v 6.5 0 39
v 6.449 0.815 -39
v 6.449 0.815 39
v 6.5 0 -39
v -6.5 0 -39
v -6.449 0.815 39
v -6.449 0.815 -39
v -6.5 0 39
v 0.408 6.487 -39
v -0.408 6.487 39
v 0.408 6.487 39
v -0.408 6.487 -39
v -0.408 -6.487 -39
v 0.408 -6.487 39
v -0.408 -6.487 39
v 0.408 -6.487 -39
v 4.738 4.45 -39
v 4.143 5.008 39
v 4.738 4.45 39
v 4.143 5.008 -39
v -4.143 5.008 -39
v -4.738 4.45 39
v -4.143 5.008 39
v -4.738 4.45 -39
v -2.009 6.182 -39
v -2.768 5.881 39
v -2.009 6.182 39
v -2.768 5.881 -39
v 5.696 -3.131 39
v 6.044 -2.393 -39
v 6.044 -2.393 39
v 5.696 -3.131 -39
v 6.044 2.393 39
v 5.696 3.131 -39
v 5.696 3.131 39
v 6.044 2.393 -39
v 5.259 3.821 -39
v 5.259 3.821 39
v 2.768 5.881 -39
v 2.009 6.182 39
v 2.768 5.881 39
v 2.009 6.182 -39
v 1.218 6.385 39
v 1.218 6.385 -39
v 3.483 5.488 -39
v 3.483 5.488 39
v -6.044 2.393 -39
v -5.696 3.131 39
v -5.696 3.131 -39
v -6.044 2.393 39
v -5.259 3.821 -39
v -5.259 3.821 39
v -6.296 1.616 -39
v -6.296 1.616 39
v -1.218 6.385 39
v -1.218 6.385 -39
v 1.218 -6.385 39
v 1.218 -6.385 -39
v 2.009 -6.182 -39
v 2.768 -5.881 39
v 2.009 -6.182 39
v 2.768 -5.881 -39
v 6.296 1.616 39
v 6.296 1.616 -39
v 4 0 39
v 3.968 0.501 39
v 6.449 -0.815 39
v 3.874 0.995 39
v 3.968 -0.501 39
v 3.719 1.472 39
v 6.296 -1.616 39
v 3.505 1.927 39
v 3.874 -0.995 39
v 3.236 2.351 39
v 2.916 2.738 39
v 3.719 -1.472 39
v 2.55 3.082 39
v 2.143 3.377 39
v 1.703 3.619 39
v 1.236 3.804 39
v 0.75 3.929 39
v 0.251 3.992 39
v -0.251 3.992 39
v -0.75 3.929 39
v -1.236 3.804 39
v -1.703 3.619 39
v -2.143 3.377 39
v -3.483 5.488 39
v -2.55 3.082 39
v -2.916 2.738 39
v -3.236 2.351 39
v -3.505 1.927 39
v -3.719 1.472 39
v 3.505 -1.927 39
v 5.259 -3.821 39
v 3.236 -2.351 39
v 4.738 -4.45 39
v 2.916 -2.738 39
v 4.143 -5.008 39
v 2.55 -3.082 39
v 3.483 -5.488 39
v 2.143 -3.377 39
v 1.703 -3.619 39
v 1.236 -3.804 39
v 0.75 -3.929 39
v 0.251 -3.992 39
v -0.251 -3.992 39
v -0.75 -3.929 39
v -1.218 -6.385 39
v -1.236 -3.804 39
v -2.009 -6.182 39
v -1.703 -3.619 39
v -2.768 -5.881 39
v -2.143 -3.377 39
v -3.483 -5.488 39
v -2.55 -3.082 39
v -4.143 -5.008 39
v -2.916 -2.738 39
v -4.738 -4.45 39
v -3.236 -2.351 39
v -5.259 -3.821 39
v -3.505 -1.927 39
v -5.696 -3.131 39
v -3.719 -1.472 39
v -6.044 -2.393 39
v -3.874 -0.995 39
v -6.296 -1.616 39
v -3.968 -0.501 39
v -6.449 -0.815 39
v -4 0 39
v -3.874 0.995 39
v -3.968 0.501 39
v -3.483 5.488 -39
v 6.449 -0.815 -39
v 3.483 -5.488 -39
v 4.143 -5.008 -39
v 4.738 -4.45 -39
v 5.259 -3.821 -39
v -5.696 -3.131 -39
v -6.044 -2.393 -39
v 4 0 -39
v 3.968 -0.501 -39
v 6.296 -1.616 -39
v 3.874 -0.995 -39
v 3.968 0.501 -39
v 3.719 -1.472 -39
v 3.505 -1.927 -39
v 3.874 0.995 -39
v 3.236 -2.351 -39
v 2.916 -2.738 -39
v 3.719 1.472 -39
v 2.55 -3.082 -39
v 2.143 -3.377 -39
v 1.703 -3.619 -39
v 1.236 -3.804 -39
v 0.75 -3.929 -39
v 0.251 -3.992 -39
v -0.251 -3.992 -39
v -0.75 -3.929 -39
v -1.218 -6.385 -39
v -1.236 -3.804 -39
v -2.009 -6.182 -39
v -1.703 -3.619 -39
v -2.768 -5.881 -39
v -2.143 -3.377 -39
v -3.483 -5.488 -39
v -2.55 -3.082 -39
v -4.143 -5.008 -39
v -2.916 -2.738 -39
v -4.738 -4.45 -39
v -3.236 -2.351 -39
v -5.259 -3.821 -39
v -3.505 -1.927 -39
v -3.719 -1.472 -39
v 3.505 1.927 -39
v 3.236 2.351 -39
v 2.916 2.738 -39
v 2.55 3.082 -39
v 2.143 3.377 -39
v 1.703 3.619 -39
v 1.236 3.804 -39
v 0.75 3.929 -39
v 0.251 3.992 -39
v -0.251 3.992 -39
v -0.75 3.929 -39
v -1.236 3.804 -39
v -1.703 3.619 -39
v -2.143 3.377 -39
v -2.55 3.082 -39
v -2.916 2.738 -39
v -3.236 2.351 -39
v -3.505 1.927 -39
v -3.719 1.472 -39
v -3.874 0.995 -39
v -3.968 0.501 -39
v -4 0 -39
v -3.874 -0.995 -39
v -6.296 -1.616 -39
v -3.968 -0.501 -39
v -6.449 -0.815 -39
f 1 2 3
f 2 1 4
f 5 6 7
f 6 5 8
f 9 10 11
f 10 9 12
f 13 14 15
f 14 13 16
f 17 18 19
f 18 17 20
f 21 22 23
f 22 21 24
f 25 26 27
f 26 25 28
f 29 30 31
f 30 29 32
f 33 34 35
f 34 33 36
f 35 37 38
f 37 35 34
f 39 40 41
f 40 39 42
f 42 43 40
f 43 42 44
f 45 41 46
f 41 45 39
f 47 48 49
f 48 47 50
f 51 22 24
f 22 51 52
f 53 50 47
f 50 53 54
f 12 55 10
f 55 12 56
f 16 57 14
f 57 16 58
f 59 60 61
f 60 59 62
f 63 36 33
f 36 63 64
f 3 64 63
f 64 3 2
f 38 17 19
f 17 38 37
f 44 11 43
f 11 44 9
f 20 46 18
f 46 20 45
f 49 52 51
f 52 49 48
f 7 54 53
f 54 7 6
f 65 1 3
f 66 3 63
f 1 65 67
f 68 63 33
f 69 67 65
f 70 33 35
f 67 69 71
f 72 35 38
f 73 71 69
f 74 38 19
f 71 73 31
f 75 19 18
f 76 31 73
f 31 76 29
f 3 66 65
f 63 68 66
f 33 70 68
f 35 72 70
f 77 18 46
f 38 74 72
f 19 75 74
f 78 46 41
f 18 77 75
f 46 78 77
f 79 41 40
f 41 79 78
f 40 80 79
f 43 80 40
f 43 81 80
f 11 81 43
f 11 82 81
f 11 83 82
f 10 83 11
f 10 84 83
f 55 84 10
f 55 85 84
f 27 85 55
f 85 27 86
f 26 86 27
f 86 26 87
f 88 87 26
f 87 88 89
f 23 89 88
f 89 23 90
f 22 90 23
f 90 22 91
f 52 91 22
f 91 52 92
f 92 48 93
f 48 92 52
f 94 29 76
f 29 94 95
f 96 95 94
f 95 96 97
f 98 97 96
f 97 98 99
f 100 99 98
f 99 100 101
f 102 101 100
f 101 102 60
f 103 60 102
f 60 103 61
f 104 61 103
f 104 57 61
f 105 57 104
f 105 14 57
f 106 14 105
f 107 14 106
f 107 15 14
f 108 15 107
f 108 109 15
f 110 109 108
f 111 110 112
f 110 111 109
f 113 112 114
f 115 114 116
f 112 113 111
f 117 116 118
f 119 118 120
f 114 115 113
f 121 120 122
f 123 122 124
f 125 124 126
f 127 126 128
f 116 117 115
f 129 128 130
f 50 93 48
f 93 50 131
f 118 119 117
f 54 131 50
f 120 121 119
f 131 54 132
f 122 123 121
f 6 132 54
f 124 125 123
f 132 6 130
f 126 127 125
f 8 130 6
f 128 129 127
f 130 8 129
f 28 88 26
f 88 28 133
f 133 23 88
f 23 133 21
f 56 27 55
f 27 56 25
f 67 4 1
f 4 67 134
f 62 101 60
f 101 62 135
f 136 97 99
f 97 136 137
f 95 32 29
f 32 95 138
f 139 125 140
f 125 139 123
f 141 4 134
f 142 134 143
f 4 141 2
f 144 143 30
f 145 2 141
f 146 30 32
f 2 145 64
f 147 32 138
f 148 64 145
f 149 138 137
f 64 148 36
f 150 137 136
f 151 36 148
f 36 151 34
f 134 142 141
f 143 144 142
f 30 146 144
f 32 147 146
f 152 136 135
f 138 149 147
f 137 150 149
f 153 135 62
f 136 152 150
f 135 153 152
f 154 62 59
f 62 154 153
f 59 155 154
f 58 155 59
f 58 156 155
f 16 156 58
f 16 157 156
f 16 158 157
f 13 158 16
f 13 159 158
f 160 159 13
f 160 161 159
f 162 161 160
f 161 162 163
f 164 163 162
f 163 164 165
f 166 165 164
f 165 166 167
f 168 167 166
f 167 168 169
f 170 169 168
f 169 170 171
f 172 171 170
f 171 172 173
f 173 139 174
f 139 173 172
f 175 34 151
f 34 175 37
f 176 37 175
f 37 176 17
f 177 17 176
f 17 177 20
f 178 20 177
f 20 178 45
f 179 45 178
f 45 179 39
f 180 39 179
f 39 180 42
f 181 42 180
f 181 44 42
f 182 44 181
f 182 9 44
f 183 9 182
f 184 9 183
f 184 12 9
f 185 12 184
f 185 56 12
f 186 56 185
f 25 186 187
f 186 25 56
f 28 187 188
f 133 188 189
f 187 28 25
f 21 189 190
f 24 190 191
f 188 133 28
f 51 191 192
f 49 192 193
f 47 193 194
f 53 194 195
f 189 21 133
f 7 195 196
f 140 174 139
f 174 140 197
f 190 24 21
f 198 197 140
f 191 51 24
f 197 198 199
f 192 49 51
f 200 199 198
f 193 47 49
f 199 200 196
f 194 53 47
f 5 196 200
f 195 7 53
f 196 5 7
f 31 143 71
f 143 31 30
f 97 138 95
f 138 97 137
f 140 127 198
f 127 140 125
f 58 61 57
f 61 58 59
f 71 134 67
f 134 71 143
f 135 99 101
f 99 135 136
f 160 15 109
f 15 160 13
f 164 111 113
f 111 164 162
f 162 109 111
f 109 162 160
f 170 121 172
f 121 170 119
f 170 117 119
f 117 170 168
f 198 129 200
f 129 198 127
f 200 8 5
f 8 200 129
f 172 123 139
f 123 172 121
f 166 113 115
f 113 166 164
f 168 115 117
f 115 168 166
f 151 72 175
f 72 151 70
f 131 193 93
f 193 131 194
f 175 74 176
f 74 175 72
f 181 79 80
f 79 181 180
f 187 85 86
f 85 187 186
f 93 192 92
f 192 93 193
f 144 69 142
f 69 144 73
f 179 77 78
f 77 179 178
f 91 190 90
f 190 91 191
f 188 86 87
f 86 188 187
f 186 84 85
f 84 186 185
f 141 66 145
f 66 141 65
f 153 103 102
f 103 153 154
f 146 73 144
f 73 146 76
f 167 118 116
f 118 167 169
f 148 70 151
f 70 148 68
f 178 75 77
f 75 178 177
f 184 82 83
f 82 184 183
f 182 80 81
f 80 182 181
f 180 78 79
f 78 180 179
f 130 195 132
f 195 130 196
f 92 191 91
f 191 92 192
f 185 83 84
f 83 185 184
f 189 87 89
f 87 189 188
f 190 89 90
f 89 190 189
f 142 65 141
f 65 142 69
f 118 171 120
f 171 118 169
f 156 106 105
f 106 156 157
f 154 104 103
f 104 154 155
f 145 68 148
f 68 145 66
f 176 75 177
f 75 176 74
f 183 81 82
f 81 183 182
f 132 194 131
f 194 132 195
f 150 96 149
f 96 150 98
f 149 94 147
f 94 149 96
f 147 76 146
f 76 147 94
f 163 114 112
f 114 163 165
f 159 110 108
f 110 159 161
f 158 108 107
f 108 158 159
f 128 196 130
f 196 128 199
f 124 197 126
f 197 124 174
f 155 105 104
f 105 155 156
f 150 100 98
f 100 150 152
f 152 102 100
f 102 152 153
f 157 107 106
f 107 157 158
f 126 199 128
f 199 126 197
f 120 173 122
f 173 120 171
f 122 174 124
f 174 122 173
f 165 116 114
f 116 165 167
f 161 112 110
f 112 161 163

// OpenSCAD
$fn = 50;


difference() {
	union() {
		translate(v = [0, 0, -39.0000000000]) {
			cylinder(h = 78, r = 6.5000000000);
		}
	}
	union() {
		translate(v = [0, 0, -100.0000000000]) {
			cylinder(h = 200, r = 4.0000000000);
		}
	}
}
